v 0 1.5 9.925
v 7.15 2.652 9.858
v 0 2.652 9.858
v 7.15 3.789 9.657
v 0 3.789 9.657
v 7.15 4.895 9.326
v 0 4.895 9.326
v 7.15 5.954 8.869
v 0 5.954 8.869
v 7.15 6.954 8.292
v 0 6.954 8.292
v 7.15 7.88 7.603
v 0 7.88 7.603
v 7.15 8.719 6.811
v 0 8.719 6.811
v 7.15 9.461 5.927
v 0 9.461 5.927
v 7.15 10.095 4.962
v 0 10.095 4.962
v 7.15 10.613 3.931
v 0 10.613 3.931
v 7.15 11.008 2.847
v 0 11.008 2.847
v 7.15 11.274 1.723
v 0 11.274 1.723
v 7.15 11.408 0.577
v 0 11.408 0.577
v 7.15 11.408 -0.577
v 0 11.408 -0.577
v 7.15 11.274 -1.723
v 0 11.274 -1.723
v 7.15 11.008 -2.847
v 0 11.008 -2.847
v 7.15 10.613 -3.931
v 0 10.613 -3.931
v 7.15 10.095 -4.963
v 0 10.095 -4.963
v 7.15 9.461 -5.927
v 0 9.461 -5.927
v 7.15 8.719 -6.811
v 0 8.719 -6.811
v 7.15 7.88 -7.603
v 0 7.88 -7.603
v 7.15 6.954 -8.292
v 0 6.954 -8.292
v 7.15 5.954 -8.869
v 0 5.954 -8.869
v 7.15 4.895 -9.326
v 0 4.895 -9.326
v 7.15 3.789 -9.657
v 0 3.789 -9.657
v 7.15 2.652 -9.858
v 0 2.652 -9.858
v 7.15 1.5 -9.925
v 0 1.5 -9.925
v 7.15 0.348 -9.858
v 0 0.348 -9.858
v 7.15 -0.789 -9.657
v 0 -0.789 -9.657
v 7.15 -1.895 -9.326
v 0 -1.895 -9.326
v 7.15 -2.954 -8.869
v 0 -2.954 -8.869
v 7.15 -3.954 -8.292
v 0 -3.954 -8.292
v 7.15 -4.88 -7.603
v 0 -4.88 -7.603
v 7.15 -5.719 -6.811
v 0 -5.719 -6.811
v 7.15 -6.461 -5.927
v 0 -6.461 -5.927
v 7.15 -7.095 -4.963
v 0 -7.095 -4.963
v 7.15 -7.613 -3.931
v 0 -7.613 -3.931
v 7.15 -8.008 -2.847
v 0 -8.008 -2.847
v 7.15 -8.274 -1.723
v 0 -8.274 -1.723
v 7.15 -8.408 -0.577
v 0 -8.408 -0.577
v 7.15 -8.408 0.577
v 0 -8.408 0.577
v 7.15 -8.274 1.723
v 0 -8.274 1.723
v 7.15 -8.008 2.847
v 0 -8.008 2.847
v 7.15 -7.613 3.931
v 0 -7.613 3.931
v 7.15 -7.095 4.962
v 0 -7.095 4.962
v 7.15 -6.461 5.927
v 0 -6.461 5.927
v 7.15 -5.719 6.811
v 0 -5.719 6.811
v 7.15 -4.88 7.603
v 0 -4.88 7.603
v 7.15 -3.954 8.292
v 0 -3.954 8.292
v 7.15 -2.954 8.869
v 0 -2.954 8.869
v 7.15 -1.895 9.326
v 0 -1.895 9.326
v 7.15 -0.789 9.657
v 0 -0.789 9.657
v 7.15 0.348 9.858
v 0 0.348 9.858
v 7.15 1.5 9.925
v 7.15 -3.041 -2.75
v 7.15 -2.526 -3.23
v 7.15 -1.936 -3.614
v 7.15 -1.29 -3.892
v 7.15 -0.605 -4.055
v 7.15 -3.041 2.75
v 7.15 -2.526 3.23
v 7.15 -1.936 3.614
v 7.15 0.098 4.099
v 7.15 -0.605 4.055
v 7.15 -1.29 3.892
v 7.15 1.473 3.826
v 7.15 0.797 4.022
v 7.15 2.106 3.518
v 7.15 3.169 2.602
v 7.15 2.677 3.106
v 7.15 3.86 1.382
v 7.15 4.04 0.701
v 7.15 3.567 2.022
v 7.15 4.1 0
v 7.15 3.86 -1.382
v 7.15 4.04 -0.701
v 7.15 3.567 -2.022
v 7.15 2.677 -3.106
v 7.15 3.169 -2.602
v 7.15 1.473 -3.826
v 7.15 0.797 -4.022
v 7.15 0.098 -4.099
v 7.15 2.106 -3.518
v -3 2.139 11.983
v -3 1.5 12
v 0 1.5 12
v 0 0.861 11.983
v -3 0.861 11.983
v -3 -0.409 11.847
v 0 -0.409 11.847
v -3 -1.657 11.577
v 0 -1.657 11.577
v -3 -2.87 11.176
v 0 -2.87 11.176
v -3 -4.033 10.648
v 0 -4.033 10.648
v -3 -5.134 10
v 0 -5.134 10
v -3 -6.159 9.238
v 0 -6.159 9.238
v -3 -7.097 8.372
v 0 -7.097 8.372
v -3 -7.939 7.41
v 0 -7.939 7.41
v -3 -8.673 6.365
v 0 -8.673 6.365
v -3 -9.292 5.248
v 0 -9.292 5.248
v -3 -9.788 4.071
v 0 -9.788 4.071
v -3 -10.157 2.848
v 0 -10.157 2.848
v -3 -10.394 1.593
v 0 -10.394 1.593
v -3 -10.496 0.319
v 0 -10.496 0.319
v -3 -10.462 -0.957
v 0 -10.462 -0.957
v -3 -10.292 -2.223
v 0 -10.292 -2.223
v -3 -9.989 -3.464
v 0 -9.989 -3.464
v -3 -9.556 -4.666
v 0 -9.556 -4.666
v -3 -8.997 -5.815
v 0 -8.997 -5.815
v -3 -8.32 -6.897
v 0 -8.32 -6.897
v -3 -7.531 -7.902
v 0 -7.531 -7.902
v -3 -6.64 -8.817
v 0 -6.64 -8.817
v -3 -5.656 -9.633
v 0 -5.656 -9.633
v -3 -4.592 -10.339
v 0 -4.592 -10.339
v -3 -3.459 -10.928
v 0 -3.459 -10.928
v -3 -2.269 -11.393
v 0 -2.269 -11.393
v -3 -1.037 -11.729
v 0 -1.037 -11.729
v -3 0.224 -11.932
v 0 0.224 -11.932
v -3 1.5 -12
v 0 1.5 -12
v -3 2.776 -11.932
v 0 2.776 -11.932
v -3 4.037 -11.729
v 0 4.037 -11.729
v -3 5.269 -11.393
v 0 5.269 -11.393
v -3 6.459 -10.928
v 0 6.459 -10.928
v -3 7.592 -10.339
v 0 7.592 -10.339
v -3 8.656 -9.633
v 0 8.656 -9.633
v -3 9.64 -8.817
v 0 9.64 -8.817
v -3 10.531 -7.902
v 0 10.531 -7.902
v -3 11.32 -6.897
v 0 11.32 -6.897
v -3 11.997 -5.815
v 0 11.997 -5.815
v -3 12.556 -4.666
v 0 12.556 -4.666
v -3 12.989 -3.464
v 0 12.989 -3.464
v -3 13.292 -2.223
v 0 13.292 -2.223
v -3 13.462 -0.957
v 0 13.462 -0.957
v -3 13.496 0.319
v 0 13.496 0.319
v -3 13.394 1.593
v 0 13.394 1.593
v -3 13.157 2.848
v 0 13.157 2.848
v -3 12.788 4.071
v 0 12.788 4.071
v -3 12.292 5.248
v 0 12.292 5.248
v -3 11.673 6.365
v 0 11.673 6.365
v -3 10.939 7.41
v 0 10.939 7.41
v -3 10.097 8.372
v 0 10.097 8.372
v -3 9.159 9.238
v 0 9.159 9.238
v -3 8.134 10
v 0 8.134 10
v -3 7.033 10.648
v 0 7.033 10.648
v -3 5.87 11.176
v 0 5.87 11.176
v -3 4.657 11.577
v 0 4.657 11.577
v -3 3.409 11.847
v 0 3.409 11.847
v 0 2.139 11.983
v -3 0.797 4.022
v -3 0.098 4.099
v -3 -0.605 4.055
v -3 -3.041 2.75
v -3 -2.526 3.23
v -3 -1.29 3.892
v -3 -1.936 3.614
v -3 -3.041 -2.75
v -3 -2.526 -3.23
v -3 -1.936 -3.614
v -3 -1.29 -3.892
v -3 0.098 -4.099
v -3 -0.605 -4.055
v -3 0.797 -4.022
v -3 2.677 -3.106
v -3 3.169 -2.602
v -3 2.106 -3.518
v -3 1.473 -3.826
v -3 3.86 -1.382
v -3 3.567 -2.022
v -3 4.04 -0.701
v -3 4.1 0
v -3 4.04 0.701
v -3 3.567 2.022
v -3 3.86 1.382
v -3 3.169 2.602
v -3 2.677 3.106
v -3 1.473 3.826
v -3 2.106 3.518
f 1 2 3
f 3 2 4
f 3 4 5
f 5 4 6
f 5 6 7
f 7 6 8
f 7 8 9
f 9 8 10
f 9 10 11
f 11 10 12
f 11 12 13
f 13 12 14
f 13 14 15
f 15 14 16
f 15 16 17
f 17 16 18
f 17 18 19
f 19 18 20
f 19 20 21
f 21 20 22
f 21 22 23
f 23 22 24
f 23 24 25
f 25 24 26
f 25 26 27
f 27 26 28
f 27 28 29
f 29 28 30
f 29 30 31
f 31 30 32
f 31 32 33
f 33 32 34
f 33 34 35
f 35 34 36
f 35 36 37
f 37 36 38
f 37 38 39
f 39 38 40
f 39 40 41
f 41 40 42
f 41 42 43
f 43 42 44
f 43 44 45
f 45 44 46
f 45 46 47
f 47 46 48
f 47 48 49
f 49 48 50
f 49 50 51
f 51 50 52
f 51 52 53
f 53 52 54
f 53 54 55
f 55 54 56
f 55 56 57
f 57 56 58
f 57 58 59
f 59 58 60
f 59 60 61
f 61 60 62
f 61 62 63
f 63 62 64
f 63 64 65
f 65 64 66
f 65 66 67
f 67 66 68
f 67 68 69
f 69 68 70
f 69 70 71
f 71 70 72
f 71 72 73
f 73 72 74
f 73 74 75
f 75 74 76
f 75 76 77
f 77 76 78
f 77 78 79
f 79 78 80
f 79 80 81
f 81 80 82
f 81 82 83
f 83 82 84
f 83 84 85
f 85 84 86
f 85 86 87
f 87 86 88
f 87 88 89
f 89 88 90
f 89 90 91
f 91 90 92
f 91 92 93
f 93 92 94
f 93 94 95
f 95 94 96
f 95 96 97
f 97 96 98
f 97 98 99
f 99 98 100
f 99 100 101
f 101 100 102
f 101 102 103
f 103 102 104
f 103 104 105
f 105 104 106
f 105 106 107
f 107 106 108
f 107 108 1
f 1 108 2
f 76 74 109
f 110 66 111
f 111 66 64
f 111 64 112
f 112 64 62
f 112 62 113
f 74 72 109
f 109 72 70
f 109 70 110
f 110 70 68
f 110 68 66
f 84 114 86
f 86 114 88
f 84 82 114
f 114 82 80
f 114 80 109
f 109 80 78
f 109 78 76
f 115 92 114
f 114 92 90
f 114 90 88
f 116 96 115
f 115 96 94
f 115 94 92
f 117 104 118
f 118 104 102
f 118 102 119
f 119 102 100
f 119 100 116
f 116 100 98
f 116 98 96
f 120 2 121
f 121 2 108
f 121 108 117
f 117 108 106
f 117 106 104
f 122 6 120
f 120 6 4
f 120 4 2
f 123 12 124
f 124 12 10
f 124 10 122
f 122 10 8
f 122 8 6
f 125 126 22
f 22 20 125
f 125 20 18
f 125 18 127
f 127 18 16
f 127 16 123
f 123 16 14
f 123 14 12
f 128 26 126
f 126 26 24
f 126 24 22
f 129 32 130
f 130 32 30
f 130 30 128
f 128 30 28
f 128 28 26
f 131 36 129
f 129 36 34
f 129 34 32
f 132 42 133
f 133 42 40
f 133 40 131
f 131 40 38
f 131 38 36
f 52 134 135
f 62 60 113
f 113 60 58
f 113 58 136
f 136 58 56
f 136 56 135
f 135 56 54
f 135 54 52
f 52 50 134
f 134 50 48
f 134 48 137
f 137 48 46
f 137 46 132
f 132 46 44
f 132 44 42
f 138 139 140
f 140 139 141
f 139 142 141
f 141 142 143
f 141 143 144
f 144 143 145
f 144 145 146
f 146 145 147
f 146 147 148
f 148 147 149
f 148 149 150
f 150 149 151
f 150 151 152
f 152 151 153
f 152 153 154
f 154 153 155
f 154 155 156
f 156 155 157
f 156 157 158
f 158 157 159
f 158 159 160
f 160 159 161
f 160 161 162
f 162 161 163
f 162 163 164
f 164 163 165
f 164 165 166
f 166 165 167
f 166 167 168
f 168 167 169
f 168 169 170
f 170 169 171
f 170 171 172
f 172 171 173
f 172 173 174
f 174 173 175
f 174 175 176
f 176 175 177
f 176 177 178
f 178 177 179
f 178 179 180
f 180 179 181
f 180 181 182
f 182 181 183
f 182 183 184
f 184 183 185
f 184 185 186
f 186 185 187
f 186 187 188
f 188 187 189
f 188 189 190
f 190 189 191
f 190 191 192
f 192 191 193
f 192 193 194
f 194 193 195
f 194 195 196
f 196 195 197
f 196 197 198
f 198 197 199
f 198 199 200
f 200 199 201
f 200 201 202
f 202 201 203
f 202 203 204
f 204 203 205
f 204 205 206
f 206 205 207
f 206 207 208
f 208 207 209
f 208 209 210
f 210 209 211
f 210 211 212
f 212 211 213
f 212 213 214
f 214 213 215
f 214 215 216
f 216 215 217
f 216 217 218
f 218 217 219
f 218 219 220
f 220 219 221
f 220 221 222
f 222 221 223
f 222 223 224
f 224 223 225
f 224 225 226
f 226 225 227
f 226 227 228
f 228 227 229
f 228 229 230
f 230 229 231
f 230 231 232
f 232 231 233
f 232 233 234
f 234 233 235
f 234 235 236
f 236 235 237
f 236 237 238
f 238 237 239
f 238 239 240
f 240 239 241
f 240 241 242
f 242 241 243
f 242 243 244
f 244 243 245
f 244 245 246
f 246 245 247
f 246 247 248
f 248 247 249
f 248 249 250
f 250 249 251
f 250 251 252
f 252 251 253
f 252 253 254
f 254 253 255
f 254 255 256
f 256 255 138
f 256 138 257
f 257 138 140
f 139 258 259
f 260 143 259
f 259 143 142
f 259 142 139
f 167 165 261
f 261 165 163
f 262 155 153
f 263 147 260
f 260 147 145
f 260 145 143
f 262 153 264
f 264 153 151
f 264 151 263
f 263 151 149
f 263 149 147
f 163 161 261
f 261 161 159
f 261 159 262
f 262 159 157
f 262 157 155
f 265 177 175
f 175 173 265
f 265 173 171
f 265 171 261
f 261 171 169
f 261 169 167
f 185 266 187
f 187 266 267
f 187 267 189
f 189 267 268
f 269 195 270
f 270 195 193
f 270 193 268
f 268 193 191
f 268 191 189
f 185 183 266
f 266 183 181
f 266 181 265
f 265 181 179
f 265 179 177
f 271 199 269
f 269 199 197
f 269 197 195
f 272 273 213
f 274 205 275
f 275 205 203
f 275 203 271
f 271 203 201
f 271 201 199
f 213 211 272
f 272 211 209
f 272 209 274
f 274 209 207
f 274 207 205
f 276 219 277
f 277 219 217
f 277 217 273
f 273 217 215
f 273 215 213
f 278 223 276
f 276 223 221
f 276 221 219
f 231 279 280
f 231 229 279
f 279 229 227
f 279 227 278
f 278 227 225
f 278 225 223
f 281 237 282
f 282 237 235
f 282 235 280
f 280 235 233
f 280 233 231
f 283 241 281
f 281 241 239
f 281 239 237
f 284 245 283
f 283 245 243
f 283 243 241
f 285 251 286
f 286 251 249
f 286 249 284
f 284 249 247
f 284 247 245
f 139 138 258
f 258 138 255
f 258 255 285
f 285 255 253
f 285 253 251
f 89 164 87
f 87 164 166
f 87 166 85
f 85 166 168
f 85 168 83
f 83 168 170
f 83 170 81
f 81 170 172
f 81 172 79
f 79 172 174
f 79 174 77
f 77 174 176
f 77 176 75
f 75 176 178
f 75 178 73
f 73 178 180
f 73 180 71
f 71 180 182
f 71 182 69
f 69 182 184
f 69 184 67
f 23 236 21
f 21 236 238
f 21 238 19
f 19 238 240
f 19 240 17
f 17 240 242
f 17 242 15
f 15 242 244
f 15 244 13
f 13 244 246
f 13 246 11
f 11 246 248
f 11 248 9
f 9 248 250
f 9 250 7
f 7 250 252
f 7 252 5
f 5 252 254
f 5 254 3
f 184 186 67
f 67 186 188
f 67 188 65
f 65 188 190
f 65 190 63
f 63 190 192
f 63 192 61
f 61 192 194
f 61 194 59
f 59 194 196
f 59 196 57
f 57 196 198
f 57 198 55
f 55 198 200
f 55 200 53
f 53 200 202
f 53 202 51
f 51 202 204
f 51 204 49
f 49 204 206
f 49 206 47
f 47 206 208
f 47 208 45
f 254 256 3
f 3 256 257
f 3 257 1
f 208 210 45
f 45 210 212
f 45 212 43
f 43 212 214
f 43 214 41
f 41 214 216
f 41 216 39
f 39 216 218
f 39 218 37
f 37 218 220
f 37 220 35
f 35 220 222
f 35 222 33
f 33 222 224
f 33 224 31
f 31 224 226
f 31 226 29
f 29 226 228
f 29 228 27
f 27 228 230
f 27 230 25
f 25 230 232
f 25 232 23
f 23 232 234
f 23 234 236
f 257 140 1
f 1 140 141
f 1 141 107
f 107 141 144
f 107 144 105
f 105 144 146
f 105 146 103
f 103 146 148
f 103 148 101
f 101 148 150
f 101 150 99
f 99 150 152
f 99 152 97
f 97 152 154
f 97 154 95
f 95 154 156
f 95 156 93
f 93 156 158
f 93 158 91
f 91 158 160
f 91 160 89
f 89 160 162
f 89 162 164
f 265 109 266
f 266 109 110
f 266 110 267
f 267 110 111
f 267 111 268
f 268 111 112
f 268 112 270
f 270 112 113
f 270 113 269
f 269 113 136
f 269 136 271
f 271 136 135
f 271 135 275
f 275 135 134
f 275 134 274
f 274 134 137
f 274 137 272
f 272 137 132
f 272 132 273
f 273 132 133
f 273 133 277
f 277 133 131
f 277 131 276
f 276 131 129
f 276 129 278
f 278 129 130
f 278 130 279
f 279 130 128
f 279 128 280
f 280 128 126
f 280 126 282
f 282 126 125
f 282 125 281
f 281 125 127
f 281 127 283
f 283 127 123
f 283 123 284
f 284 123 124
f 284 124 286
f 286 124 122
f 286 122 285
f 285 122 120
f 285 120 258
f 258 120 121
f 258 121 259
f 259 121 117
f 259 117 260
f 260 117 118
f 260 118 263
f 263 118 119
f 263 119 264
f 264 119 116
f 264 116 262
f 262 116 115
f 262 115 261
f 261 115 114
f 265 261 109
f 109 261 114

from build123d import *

# Parameters (mm, degrees)
SKIZZE1_R                            = 9.925
AUFSATZ_LINEAR_AUSTRAGEN1_DEPTH      = 7.15
SKIZZE2_R                            = 12
AUFSATZ_LINEAR_AUSTRAGEN2_DEPTH      = 3
SCHNITT_LINEAR_AUSTRAGEN1_DEPTH      = 21.718892345
SCHNITT_LINEAR_AUSTRAGEN1_DEPTH_BACK = 21.718892345


with BuildPart() as part:
    # Skizze1 → Aufsatz-Linear austragen1 (new body)
    with BuildSketch(Plane(origin=(0, 0, 0), x_dir=(0, 0, -1), z_dir=(1, 0, 0))):
        with Locations((0, 1.5)):
            Circle(SKIZZE1_R)
    extrude(amount=AUFSATZ_LINEAR_AUSTRAGEN1_DEPTH)

    # Skizze2 → Aufsatz-Linear austragen2 (add)
    with BuildSketch(Plane.ZY):
        with Locations((0, 1.5)):
            Circle(SKIZZE2_R)
    extrude(amount=AUFSATZ_LINEAR_AUSTRAGEN2_DEPTH)

    # Skizze3 → Schnitt-Linear austragen1 (cut, two sides: drawn at the far end of the back side and taken through both)
    with BuildSketch(Plane(origin=(7.15, 0, 0), x_dir=(0, 0, -1), z_dir=(1, 0, 0)).offset(-SCHNITT_LINEAR_AUSTRAGEN1_DEPTH_BACK)):
        with BuildLine():
            Line((2.75, -3.04097024), (-2.75, -3.04097024))
            ThreePointArc((-2.75, -3.04097024), (0, 4.1), (2.75, -3.04097024))
        make_face()
    extrude(amount=SCHNITT_LINEAR_AUSTRAGEN1_DEPTH + SCHNITT_LINEAR_AUSTRAGEN1_DEPTH_BACK, mode=Mode.SUBTRACT)


solid = part.part
